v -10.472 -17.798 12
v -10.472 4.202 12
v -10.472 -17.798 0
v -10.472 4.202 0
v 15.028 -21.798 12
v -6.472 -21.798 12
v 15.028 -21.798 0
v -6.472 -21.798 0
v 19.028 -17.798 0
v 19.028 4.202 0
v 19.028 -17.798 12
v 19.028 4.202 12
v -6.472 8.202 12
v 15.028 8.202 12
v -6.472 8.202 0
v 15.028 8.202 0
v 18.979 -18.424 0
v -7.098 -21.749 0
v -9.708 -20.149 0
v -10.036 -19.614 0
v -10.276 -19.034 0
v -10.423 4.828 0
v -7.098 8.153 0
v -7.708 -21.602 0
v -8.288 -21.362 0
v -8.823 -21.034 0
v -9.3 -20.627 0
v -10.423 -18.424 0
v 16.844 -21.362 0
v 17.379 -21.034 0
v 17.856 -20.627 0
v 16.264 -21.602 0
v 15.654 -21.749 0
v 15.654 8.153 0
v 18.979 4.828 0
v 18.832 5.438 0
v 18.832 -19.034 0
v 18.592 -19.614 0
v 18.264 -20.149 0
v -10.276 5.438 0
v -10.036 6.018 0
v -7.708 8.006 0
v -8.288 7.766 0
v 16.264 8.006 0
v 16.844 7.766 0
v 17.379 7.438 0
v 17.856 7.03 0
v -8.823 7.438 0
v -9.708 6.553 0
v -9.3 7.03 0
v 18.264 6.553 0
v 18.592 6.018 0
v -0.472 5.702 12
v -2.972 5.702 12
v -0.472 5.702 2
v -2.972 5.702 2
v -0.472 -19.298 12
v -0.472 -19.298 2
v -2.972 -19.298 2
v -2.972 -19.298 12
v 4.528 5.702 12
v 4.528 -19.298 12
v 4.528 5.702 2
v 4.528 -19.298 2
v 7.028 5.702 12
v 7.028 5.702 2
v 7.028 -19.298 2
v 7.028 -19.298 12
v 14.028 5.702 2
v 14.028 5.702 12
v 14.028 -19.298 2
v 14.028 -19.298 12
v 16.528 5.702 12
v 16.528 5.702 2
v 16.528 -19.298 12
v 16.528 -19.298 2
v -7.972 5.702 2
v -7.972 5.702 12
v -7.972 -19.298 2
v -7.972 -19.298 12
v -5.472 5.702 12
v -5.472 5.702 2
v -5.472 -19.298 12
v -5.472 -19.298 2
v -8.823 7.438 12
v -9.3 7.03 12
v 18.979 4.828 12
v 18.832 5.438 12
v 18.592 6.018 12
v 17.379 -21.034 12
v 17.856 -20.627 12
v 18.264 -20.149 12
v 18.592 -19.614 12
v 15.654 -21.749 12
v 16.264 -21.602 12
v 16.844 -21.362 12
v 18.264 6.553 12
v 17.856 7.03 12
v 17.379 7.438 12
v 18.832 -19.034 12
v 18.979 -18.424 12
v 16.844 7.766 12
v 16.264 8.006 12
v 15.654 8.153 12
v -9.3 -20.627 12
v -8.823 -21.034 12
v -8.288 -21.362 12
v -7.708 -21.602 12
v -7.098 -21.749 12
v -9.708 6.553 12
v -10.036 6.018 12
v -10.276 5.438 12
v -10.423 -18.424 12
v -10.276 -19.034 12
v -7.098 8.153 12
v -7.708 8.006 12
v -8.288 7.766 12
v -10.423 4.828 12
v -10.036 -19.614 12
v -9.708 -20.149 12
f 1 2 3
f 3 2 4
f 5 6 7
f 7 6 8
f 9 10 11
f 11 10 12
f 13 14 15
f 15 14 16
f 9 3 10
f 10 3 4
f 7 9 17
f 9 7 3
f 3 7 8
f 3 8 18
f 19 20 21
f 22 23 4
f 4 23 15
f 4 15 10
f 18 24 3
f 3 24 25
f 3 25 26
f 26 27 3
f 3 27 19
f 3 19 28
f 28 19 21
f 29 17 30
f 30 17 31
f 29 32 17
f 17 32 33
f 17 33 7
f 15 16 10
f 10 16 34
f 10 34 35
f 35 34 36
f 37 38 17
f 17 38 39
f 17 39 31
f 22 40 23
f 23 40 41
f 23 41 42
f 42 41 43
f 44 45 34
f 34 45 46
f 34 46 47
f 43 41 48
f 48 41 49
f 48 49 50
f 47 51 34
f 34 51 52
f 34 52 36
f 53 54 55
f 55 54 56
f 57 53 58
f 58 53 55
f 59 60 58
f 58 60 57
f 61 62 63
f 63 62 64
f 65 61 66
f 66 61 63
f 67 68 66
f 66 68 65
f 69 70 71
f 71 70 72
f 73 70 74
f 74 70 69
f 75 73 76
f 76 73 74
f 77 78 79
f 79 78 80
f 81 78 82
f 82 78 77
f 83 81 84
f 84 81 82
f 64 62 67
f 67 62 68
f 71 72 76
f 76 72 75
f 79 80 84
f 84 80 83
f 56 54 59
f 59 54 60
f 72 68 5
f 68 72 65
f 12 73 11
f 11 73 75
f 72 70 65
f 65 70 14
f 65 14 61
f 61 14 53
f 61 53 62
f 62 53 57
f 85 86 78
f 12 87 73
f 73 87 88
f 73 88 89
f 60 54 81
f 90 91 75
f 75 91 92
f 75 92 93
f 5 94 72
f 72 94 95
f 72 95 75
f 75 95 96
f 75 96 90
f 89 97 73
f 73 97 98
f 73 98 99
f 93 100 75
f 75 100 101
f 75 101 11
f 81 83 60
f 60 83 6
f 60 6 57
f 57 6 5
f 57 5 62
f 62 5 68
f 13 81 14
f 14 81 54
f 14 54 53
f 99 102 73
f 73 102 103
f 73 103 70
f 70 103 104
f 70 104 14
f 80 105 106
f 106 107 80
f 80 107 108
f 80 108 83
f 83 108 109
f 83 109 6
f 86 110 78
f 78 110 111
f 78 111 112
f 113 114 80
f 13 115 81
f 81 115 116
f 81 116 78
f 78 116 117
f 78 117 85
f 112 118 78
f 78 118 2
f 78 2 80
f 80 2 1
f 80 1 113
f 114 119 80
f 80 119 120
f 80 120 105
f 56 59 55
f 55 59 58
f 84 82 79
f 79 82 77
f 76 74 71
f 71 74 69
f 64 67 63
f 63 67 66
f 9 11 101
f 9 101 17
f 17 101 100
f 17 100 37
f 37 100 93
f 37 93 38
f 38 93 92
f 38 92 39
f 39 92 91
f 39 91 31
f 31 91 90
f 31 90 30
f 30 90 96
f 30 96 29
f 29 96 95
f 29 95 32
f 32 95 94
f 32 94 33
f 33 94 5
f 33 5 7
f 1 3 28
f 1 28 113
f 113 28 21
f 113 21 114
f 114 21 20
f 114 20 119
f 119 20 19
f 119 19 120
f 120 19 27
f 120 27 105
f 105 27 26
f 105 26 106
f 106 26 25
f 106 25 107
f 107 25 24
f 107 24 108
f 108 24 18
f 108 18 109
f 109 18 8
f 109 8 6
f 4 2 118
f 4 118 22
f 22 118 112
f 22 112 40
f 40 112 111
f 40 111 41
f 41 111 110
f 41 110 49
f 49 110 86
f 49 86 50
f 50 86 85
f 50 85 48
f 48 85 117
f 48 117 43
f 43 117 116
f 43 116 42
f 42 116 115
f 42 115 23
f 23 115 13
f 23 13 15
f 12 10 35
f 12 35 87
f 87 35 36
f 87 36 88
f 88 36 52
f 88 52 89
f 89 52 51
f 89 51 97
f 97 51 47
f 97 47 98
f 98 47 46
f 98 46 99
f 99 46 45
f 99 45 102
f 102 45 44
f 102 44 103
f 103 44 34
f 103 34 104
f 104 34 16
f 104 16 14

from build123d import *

# Parameters (mm, degrees)
SKETCH1_W           = 29.5
SKETCH1_H           = 30
BOSS_EXTRUDE3_DEPTH = 2
SKETCH1_8_W         = 29.5
SKETCH1_8_H         = 30
SKETCH1_8_W_2       = 2.5
SKETCH1_8_H_2       = 25
BOSS_EXTRUDE4_DEPTH = 12
FILLET2_R           = 4


with BuildPart() as part:
    # Sketch1 → Boss-Extrude3 (new body)
    with BuildSketch(Plane.XY):
        with Locations((4.277950311, -6.798136646)):
            Rectangle(SKETCH1_W, SKETCH1_H)
    extrude(amount=BOSS_EXTRUDE3_DEPTH)

    # Sketch1<8> → Boss-Extrude4 (add)
    with BuildSketch(Plane.XY):
        with Locations((4.277950311, -6.798136646)):
            Rectangle(SKETCH1_8_W, SKETCH1_8_H)
        with Locations((15.277950311, -6.798136646)):
            Rectangle(SKETCH1_8_W_2, SKETCH1_8_H_2, mode=Mode.SUBTRACT)
        with Locations((5.777950311, -6.798136646)):
            Rectangle(SKETCH1_8_W_2, SKETCH1_8_H_2, mode=Mode.SUBTRACT)
        with Locations((-1.722049689, -6.798136646)):
            Rectangle(SKETCH1_8_W_2, SKETCH1_8_H_2, mode=Mode.SUBTRACT)
        with Locations((-6.722049689, -6.798136646)):
            Rectangle(SKETCH1_8_W_2, SKETCH1_8_H_2, mode=Mode.SUBTRACT)
    extrude(amount=BOSS_EXTRUDE4_DEPTH)

    # Fillet2
    fillet2_edges = [part.edges().sort_by_distance(p)[0] for p in [
        (19.027950311, -21.798136646, 6),
        (-10.472049689, -21.798136646, 6),
        (-10.472049689, 8.201863354, 6),
        (19.027950311, 8.201863354, 6),
    ]]
    fillet(fillet2_edges, radius=FILLET2_R)


solid = part.part
